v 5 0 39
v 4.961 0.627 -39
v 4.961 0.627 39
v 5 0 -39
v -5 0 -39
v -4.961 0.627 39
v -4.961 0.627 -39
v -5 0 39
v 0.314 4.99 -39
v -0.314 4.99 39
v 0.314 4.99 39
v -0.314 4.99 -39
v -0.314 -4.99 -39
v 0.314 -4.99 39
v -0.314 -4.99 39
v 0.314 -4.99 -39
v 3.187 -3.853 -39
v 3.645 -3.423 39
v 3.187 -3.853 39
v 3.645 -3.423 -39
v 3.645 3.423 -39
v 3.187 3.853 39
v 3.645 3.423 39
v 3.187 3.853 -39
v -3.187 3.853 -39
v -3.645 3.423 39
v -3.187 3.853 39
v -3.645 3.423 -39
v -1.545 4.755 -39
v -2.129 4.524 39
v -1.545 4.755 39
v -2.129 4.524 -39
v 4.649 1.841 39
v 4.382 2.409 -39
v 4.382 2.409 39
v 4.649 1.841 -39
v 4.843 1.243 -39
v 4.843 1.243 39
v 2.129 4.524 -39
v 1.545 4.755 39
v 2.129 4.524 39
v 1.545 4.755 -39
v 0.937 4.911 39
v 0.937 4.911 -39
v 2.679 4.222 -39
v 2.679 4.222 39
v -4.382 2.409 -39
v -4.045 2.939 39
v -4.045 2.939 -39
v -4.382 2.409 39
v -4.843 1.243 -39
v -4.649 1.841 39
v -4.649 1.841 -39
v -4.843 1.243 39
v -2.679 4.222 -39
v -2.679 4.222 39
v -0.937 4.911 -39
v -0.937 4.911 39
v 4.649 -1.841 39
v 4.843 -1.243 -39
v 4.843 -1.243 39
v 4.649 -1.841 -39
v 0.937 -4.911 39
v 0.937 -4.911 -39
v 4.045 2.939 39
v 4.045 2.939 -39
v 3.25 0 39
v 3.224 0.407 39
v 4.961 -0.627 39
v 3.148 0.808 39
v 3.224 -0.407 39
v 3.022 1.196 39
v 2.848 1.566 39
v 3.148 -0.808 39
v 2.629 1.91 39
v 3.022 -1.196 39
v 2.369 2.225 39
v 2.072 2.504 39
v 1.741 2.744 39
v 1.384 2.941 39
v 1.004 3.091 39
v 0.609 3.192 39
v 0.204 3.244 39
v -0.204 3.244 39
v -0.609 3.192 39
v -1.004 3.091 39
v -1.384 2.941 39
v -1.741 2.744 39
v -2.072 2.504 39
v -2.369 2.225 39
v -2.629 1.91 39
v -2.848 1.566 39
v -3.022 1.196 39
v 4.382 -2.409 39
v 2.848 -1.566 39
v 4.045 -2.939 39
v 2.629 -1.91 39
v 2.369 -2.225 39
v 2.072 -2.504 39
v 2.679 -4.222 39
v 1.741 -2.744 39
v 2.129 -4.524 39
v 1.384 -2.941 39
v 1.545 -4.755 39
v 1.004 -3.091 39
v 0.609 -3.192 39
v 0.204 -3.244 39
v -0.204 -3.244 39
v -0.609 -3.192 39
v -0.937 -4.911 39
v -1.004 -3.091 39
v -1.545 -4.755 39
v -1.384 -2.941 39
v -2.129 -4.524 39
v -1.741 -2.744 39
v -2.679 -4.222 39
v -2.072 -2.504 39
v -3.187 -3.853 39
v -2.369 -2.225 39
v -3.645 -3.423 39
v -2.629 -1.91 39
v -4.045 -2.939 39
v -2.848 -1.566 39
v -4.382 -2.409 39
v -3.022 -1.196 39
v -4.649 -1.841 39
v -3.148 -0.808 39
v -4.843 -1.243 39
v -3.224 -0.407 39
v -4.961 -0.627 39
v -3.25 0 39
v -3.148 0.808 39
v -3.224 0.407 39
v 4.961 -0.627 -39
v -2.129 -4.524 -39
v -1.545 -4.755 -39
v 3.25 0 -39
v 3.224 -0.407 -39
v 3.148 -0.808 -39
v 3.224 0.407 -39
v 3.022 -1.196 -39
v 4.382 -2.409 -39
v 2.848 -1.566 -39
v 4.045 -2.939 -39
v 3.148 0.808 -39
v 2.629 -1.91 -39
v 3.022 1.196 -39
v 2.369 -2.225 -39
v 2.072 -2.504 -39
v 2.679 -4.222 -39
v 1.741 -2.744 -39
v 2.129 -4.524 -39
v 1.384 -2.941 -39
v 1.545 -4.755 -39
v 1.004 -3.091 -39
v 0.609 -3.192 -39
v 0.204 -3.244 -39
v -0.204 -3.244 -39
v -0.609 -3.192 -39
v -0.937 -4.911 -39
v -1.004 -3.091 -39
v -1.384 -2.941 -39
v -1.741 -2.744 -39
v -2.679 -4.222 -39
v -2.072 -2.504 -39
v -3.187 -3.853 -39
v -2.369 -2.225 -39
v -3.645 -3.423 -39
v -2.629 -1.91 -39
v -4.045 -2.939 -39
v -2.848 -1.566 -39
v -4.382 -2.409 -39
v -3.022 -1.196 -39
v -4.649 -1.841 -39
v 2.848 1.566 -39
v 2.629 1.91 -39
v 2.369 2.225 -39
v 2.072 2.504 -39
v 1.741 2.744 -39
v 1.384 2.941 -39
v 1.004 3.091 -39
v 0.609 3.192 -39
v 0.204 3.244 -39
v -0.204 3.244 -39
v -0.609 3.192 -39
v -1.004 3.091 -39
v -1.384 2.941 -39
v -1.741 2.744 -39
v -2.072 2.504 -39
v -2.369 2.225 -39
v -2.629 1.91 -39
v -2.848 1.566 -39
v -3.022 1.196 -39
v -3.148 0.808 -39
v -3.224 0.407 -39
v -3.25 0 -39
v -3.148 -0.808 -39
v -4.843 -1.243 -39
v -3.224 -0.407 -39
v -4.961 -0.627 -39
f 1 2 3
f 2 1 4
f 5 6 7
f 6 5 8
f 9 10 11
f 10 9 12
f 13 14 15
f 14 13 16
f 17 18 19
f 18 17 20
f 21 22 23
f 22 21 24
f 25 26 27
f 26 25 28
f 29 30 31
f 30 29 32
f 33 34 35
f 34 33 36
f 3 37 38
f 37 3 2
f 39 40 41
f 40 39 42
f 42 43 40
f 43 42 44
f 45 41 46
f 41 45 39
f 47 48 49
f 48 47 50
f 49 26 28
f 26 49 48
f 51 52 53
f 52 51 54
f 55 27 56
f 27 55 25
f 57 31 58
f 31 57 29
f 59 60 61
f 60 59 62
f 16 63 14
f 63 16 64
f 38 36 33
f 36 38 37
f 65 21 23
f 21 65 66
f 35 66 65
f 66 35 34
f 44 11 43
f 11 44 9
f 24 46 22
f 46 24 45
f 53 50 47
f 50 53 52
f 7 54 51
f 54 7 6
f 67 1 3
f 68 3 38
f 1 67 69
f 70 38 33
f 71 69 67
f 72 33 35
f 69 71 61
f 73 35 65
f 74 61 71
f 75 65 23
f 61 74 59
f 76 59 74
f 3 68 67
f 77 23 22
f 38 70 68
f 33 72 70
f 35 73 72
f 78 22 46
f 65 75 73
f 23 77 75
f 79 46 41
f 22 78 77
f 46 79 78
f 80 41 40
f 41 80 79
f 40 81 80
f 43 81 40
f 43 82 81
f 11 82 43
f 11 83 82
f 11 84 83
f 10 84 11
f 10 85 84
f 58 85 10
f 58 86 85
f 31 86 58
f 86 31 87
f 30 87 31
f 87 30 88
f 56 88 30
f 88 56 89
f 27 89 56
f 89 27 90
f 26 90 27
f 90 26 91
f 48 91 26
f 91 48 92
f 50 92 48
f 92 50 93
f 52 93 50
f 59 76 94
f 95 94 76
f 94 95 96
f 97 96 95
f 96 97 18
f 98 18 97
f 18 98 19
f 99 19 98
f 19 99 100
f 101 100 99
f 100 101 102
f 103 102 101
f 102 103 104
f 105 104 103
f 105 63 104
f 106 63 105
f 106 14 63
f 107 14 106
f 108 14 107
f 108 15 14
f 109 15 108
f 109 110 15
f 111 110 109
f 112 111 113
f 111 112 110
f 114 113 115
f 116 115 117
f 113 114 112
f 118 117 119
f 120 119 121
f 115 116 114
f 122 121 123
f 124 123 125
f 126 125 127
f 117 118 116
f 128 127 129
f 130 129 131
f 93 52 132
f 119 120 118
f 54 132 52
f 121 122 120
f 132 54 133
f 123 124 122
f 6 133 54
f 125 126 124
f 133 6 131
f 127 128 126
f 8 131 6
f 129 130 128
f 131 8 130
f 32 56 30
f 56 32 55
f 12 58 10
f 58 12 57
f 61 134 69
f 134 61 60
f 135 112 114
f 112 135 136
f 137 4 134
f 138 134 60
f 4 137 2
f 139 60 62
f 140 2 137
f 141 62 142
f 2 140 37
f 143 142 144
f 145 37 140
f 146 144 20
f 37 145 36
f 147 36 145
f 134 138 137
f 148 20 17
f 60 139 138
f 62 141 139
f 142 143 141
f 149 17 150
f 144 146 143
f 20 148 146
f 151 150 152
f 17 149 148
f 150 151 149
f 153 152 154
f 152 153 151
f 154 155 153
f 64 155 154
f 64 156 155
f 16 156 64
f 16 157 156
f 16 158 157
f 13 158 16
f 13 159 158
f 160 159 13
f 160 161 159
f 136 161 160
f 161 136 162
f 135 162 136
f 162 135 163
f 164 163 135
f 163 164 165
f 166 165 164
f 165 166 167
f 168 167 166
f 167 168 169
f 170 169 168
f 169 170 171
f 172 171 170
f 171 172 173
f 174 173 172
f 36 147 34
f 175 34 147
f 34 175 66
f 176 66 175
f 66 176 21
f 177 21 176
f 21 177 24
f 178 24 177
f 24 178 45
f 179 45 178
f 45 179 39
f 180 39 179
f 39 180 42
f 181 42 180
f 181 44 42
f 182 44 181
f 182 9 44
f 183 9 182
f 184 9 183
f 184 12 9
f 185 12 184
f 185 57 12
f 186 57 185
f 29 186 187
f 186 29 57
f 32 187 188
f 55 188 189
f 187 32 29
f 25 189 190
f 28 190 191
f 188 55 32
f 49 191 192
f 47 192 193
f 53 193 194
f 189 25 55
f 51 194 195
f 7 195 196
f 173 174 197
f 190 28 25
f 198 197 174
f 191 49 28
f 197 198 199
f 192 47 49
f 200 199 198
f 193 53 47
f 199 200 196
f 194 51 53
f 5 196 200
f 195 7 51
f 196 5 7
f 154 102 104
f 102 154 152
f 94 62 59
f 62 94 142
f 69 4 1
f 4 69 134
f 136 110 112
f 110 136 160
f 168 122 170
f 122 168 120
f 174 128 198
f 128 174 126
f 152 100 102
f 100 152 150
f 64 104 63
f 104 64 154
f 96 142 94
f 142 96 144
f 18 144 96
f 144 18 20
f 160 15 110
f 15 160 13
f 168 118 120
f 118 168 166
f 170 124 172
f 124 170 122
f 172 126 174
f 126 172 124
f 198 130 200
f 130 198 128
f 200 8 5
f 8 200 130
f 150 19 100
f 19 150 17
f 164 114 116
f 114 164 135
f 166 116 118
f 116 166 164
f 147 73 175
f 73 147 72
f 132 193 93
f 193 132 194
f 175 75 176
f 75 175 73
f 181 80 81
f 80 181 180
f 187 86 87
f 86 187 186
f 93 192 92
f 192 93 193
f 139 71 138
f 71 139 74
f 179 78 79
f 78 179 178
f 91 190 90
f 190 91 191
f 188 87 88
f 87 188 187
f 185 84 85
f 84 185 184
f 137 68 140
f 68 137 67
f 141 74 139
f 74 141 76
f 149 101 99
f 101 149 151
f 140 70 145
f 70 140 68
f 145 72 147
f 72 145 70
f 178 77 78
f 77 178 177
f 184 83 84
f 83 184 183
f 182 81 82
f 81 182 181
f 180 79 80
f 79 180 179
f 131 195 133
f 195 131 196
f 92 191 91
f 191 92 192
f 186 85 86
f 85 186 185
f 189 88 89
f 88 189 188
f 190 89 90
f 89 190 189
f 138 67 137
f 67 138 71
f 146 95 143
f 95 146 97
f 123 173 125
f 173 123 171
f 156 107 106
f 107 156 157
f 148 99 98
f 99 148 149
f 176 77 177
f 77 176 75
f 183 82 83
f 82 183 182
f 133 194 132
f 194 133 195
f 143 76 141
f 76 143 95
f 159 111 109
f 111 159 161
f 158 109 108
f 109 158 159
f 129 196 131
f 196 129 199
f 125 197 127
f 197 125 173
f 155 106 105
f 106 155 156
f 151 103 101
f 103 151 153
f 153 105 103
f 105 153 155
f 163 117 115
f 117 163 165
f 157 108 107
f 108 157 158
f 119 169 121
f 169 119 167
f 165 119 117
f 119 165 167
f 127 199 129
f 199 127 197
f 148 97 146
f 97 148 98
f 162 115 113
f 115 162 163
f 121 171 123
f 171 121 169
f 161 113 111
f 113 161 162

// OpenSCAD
$fn = 50;


difference() {
	union() {
		translate(v = [0, 0, -39.0000000000]) {
			cylinder(h = 78, r = 5.0000000000);
		}
	}
	union() {
		translate(v = [0, 0, -100.0000000000]) {
			cylinder(h = 200, r = 3.2500000000);
		}
	}
}
